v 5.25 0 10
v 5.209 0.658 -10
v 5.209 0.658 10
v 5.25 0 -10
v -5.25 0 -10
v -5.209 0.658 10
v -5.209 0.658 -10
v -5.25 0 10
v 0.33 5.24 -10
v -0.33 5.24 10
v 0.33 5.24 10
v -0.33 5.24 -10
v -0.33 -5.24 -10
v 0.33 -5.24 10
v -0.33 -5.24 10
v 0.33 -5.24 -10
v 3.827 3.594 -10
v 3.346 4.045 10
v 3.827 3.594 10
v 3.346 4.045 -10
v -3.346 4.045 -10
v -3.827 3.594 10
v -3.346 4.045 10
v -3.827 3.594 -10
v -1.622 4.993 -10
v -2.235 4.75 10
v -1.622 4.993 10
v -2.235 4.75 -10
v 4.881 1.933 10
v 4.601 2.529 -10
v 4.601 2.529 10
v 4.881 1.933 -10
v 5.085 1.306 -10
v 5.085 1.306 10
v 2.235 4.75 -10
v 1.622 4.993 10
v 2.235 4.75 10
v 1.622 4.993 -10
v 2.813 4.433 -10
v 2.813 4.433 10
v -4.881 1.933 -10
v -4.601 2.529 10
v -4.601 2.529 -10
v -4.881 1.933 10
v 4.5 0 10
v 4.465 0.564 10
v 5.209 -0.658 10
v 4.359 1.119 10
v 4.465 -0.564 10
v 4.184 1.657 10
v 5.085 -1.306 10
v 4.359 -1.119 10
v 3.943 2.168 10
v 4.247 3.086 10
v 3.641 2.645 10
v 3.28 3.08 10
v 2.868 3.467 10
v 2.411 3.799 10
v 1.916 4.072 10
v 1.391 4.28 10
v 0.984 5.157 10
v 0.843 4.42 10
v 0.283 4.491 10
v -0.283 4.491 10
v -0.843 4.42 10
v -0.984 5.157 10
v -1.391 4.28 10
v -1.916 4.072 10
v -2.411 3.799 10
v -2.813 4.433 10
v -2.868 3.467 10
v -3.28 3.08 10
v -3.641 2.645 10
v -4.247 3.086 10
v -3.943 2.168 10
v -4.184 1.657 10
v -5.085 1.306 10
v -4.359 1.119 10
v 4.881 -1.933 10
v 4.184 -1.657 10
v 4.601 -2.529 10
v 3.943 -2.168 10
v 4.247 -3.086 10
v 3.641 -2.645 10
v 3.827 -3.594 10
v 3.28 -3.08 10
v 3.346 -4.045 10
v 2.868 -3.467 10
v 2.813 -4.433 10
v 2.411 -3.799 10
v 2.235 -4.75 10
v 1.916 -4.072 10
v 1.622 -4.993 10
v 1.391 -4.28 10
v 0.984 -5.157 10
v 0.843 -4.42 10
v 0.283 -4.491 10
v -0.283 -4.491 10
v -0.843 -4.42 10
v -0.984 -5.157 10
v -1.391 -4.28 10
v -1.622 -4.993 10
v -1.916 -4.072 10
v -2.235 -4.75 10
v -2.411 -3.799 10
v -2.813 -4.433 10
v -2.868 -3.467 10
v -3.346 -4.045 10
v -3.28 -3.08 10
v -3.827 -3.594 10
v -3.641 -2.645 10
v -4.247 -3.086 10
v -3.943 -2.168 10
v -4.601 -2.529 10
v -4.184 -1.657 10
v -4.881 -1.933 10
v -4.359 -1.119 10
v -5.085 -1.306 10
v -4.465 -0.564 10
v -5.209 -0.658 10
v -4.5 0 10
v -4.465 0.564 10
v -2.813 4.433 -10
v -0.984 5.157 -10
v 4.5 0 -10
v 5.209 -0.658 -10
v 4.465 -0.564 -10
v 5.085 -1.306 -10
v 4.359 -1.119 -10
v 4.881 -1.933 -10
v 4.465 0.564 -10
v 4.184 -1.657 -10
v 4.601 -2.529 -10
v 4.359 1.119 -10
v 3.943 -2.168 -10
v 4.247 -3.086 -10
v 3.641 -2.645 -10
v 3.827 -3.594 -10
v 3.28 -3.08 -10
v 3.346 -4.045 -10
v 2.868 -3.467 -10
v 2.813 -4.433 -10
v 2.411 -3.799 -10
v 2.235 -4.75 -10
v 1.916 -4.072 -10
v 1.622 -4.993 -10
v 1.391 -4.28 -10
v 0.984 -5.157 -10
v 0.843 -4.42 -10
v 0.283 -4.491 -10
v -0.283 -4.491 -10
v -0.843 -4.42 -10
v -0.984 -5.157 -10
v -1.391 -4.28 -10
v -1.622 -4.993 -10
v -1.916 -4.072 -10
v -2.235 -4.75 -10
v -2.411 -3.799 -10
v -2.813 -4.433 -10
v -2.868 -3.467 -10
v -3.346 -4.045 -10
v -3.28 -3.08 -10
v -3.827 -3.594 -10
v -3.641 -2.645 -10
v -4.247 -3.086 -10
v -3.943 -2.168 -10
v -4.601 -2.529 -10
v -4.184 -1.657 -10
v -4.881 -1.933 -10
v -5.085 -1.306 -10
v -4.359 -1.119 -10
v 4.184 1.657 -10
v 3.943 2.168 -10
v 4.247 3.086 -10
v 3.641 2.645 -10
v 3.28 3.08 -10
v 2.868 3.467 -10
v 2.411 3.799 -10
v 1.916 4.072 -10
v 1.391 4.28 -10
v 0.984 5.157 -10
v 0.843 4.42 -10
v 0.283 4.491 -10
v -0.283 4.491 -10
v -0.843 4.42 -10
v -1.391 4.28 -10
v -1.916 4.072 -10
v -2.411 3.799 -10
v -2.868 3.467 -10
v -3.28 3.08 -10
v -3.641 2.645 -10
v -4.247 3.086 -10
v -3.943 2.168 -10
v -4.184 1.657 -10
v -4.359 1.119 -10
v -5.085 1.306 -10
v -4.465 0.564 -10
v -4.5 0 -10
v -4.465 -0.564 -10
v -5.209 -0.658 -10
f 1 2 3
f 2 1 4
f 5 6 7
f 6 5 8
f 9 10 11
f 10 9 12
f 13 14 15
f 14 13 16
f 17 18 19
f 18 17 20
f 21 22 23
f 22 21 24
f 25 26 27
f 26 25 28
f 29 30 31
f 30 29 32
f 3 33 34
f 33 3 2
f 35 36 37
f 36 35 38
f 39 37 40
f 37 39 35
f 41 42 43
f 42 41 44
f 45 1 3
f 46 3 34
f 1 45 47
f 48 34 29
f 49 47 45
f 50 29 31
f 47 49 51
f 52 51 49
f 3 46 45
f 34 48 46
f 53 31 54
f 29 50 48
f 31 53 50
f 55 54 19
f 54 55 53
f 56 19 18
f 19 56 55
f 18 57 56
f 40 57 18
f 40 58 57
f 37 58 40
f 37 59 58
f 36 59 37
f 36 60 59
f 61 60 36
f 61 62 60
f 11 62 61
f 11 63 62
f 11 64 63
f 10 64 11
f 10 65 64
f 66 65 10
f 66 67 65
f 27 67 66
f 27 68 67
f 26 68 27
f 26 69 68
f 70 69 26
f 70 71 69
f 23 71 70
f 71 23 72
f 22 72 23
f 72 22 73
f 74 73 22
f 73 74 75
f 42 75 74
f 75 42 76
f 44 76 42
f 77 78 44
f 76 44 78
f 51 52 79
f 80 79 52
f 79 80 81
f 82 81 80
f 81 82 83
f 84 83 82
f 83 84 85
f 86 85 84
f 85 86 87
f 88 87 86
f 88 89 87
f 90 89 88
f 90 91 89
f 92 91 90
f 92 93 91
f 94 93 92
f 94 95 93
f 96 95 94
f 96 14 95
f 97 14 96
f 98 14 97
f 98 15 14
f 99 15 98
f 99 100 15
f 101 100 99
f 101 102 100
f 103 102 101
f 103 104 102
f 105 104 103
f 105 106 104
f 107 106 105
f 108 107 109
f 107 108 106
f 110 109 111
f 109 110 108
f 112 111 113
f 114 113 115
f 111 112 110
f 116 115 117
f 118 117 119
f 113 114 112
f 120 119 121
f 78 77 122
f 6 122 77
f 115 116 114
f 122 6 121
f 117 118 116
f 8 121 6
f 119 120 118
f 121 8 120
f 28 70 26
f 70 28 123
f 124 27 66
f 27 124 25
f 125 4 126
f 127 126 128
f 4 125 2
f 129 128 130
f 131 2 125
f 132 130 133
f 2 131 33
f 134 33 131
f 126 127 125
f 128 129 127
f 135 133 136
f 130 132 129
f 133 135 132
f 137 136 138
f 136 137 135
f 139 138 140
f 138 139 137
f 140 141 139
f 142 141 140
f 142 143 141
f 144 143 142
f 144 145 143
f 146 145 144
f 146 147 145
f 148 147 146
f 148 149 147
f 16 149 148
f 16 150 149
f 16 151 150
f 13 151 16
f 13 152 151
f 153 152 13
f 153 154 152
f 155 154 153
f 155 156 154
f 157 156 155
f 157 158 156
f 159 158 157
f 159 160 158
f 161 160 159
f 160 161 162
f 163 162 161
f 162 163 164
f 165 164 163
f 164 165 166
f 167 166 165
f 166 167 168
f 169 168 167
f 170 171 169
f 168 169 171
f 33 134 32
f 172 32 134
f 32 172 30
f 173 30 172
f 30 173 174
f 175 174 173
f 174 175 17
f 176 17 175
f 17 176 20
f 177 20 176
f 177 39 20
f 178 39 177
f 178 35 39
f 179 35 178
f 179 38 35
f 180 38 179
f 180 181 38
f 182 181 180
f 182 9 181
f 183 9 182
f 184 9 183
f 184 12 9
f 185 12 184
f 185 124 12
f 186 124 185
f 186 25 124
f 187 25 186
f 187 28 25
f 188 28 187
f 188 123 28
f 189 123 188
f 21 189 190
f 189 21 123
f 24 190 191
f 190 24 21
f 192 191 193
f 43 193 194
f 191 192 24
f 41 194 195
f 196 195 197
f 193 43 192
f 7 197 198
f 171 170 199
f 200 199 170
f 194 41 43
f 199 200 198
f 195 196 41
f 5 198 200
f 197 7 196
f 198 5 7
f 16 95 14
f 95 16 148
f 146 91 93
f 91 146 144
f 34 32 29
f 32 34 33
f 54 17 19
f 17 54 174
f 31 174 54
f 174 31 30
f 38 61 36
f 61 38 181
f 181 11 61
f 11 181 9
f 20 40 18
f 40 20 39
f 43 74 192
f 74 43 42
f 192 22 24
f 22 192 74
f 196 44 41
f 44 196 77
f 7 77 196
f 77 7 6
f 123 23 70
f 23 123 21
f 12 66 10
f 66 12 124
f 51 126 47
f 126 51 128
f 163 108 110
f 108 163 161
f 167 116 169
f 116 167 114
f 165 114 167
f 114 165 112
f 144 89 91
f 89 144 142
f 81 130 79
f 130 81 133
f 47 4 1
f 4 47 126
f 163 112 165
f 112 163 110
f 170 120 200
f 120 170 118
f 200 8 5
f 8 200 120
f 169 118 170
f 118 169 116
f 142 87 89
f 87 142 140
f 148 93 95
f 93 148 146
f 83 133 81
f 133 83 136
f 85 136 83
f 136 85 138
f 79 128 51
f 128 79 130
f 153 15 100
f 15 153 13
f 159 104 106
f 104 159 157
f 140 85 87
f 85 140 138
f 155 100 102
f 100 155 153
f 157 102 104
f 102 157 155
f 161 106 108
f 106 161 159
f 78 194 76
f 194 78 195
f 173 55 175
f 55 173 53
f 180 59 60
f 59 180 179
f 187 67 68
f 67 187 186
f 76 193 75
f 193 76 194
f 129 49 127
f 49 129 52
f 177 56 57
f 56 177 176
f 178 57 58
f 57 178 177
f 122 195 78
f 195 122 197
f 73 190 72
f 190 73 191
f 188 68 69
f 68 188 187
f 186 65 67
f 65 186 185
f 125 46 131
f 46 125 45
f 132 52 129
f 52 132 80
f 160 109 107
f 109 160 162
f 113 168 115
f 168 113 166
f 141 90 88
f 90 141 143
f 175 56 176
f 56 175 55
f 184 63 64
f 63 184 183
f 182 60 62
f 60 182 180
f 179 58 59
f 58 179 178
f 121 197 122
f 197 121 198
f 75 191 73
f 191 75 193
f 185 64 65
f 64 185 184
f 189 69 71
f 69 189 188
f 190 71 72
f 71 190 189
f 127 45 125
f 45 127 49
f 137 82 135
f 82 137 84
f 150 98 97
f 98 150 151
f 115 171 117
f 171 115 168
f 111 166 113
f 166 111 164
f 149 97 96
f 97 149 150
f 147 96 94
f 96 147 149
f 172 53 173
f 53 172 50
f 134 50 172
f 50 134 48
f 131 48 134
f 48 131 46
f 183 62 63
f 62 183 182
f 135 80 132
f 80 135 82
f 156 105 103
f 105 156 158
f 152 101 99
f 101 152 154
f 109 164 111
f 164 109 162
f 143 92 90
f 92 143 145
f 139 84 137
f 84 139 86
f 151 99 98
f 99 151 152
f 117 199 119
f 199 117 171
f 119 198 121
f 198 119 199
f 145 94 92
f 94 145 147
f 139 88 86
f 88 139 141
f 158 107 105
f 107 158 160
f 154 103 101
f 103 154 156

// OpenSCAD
$fn = 50;


difference() {
	union() {
		translate(v = [0, 0, -10.0000000000]) {
			cylinder(h = 20, r = 5.2500000000);
		}
	}
	union() {
		translate(v = [0, 0, -100.0000000000]) {
			cylinder(h = 200, r = 4.5000000000);
		}
	}
}
